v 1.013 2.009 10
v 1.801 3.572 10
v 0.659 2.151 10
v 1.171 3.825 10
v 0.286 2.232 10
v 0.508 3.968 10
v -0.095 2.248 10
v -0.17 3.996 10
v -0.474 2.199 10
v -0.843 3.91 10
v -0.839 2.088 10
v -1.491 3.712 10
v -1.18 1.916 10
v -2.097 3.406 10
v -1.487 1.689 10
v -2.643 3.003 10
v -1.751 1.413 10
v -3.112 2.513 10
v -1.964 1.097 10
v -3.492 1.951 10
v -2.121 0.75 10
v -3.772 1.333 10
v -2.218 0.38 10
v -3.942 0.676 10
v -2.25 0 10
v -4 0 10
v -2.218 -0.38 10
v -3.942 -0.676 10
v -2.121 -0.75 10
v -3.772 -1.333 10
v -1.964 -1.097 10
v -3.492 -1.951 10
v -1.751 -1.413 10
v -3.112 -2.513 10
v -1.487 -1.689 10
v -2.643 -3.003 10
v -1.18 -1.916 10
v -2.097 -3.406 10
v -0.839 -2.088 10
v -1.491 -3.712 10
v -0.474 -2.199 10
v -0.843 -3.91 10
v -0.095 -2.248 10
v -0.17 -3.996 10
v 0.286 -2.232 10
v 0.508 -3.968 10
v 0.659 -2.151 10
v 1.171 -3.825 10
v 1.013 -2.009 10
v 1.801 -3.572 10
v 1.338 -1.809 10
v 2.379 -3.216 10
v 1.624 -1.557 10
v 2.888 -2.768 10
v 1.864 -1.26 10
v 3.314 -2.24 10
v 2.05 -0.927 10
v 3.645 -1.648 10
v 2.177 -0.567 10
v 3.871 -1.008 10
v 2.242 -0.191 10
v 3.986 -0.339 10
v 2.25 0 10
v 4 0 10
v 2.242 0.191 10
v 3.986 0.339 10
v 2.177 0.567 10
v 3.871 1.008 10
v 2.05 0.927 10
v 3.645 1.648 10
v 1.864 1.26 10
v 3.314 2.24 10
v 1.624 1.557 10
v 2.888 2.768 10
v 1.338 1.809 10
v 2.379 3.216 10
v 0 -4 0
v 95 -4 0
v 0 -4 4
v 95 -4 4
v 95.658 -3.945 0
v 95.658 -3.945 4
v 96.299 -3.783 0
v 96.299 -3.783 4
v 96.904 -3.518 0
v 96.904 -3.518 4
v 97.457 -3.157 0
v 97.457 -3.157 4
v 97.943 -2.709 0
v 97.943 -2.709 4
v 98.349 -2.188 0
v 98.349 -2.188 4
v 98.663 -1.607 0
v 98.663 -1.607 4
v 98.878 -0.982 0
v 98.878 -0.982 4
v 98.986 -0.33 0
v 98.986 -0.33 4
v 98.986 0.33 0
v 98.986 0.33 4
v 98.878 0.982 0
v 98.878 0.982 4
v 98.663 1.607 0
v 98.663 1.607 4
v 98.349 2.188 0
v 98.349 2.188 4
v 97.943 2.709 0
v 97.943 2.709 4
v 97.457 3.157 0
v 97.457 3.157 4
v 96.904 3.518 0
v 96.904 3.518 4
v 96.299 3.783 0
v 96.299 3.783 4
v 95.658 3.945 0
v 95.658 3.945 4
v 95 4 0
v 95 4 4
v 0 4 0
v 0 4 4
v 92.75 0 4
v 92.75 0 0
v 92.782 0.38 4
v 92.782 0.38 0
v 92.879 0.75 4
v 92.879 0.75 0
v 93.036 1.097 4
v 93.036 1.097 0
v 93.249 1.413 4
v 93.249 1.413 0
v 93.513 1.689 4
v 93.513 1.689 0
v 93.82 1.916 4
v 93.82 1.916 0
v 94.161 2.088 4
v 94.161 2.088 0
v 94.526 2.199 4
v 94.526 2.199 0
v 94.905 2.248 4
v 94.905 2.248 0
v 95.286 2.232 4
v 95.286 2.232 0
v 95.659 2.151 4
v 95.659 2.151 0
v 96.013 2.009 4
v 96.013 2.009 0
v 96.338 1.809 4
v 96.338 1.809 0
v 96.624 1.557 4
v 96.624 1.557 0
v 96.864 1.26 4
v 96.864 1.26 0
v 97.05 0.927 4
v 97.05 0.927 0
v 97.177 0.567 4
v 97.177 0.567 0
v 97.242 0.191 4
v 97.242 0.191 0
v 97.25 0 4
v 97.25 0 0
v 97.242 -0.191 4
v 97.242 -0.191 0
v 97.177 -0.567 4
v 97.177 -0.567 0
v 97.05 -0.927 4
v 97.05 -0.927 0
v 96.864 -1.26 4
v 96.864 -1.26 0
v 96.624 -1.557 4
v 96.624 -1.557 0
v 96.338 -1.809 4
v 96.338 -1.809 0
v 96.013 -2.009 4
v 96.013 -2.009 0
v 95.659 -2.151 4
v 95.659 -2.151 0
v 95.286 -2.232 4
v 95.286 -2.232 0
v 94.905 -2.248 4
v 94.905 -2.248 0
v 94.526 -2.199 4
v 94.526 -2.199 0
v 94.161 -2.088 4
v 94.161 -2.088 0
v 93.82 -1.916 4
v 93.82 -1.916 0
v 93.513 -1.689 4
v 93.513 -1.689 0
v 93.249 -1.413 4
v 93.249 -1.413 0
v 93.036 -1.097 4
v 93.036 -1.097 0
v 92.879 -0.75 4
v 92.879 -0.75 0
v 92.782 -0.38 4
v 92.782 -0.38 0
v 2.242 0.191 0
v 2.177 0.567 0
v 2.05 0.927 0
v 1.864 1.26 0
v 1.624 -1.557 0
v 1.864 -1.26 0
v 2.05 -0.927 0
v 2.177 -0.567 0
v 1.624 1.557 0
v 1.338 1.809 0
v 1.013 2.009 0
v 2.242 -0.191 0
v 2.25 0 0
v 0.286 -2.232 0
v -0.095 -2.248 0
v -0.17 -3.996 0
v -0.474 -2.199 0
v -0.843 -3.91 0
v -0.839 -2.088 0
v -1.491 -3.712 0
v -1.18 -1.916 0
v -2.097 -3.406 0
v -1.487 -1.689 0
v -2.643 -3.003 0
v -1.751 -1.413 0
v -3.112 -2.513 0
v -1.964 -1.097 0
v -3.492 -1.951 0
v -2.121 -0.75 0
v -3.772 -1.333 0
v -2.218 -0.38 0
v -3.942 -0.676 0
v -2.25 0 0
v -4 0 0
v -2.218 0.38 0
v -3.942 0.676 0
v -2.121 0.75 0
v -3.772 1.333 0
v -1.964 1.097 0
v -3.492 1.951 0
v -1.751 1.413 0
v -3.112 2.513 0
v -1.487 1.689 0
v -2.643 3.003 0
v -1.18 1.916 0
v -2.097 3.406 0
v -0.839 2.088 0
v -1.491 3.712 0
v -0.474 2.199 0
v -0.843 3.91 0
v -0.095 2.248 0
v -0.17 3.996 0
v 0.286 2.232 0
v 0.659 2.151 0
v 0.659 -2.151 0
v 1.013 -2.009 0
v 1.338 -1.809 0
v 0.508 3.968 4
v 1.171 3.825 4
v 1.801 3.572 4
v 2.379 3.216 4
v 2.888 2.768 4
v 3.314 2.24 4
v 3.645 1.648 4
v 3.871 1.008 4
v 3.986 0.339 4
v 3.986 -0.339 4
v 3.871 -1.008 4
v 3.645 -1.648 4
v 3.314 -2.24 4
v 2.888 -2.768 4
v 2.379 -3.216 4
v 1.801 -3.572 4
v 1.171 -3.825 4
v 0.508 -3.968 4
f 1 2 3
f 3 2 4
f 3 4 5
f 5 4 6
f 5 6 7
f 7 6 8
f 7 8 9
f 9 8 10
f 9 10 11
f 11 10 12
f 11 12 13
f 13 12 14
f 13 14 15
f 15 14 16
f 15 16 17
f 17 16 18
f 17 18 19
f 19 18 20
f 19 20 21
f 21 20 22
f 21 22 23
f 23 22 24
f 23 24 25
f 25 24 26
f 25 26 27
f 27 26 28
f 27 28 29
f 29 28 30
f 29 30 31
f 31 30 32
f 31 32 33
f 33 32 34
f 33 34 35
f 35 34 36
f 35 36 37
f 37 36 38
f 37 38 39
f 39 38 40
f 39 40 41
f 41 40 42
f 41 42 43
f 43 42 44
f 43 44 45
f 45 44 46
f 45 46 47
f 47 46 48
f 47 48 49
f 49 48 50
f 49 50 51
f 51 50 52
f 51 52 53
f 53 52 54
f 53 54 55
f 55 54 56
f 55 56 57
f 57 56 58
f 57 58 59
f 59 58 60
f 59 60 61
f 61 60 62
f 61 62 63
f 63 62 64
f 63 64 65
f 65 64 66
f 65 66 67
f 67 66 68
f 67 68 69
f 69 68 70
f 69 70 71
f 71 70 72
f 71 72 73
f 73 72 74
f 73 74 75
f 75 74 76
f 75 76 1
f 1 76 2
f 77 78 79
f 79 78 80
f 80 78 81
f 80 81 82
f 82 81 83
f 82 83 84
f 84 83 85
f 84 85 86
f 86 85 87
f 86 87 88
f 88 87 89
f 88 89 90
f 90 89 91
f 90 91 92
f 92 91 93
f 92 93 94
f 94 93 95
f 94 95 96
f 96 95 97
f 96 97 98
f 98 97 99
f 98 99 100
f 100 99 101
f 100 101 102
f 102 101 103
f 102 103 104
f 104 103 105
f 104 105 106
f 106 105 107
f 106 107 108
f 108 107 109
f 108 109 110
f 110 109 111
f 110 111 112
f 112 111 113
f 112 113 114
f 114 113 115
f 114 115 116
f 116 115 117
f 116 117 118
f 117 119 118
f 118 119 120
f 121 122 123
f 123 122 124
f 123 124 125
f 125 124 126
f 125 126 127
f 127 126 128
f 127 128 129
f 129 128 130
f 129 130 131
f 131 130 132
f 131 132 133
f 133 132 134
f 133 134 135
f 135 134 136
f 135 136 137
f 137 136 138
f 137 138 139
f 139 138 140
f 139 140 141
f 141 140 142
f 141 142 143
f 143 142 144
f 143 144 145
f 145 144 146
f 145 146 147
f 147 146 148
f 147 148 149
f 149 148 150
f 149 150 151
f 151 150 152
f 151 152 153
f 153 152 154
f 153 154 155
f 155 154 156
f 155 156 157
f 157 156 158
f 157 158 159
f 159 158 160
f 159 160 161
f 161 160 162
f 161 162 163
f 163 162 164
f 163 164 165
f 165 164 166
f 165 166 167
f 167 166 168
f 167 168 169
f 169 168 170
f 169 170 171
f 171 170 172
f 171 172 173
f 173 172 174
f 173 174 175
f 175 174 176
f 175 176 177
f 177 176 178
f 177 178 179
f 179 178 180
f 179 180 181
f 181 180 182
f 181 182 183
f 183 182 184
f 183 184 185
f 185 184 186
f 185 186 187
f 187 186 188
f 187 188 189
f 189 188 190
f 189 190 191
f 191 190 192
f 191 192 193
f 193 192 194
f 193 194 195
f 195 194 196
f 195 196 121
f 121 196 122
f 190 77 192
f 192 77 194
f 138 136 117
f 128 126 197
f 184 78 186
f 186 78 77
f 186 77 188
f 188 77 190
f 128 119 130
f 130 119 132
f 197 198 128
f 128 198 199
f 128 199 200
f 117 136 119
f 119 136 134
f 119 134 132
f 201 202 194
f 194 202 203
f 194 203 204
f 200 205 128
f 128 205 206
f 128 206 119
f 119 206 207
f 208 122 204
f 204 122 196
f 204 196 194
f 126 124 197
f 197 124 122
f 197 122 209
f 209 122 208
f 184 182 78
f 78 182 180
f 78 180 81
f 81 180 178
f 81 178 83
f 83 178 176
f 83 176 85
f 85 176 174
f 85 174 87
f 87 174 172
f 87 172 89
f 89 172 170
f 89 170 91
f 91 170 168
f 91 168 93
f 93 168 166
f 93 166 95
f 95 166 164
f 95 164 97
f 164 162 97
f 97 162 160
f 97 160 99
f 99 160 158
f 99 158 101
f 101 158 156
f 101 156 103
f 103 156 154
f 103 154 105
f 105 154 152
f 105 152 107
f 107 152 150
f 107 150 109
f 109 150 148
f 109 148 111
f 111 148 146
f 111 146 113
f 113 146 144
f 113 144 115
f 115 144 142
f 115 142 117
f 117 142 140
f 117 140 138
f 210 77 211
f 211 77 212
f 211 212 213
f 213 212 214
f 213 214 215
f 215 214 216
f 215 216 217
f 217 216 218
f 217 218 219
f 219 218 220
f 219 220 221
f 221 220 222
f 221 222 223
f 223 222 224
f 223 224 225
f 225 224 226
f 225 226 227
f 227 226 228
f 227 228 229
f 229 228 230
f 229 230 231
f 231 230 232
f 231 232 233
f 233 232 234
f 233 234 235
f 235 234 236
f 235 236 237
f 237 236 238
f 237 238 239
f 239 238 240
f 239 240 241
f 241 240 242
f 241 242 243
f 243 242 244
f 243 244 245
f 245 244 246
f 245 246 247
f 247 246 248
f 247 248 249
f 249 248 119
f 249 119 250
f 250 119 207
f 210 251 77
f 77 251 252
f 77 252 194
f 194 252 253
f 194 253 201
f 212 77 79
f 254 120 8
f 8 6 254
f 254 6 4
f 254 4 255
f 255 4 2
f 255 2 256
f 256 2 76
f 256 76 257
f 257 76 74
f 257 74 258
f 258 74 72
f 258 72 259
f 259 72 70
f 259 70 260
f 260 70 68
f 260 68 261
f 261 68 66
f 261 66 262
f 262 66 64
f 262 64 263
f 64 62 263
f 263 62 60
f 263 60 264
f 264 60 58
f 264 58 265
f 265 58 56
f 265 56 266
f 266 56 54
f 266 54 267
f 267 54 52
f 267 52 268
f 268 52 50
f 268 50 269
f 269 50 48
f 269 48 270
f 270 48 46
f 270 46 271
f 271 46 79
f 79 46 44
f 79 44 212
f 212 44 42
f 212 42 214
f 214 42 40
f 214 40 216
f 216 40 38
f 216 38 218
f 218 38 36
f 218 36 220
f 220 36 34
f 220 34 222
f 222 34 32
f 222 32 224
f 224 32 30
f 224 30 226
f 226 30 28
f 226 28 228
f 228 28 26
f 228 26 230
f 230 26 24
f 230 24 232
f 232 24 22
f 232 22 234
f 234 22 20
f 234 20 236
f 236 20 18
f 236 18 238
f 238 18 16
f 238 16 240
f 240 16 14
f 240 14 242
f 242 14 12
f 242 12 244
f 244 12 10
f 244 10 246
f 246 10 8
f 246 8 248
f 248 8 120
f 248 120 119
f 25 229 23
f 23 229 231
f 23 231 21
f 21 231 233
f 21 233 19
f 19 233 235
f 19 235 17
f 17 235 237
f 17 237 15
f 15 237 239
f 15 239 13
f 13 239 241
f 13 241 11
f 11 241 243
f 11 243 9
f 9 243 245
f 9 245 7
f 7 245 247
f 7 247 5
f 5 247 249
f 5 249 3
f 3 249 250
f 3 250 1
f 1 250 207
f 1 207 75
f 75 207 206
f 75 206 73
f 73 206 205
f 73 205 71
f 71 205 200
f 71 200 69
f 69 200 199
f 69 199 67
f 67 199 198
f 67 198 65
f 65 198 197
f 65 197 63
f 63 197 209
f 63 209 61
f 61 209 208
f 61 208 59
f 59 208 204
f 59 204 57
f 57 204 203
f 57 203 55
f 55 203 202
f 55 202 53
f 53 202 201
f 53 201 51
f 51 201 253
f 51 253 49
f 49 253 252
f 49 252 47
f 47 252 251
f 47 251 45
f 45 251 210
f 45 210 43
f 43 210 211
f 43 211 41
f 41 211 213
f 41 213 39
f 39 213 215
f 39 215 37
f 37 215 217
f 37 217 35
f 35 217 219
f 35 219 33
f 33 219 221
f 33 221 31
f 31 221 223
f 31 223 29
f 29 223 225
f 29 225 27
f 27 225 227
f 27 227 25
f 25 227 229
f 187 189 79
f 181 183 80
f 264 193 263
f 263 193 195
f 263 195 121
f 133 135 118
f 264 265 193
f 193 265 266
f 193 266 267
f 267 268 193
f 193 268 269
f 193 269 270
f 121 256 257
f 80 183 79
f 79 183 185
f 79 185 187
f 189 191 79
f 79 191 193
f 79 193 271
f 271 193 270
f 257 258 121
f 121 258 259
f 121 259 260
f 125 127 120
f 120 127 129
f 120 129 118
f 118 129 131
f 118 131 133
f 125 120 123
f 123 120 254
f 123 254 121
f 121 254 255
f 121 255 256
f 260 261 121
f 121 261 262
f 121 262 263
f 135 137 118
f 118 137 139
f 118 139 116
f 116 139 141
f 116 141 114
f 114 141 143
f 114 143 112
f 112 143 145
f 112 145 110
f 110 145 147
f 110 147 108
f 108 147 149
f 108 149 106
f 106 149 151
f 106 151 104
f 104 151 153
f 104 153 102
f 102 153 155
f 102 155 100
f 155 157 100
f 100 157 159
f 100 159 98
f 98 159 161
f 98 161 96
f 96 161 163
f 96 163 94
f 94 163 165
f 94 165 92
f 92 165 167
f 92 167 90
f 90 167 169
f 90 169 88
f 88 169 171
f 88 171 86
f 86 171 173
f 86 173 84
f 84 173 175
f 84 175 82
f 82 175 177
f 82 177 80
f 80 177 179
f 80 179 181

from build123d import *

# Parameters (mm, degrees)
SKETCH2_R               = 2.25
BOSS_EXTRUDE1_DEPTH     = 10
CUT_EXTRUDE_THIN1_START = -6
SKETCH3_R               = 104
SKETCH3_R_2             = 4
CUT_EXTRUDE_THIN1_DEPTH = 6


with BuildPart() as part:
    # Sketch2 → Boss-Extrude1 (new body)
    with BuildSketch(Plane.XY):
        with BuildLine():
            Line((0, 4), (95, 4))
            ThreePointArc((95, 4), (99, 0), (95, -4))
            Line((95, -4), (0, -4))
            ThreePointArc((0, -4), (-4, 0), (0, 4))
        make_face()
        Circle(SKETCH2_R, mode=Mode.SUBTRACT)
        with Locations((95, 0)):
            Circle(SKETCH2_R, mode=Mode.SUBTRACT)
    extrude(amount=BOSS_EXTRUDE1_DEPTH)

    # Sketch3 → Cut-Extrude-Thin1 (cut)
    with BuildSketch(Plane.XY.offset(10).offset(CUT_EXTRUDE_THIN1_START)):
        Circle(SKETCH3_R)
        Circle(SKETCH3_R_2, mode=Mode.SUBTRACT)
    extrude(amount=CUT_EXTRUDE_THIN1_DEPTH, mode=Mode.SUBTRACT)


solid = part.part
